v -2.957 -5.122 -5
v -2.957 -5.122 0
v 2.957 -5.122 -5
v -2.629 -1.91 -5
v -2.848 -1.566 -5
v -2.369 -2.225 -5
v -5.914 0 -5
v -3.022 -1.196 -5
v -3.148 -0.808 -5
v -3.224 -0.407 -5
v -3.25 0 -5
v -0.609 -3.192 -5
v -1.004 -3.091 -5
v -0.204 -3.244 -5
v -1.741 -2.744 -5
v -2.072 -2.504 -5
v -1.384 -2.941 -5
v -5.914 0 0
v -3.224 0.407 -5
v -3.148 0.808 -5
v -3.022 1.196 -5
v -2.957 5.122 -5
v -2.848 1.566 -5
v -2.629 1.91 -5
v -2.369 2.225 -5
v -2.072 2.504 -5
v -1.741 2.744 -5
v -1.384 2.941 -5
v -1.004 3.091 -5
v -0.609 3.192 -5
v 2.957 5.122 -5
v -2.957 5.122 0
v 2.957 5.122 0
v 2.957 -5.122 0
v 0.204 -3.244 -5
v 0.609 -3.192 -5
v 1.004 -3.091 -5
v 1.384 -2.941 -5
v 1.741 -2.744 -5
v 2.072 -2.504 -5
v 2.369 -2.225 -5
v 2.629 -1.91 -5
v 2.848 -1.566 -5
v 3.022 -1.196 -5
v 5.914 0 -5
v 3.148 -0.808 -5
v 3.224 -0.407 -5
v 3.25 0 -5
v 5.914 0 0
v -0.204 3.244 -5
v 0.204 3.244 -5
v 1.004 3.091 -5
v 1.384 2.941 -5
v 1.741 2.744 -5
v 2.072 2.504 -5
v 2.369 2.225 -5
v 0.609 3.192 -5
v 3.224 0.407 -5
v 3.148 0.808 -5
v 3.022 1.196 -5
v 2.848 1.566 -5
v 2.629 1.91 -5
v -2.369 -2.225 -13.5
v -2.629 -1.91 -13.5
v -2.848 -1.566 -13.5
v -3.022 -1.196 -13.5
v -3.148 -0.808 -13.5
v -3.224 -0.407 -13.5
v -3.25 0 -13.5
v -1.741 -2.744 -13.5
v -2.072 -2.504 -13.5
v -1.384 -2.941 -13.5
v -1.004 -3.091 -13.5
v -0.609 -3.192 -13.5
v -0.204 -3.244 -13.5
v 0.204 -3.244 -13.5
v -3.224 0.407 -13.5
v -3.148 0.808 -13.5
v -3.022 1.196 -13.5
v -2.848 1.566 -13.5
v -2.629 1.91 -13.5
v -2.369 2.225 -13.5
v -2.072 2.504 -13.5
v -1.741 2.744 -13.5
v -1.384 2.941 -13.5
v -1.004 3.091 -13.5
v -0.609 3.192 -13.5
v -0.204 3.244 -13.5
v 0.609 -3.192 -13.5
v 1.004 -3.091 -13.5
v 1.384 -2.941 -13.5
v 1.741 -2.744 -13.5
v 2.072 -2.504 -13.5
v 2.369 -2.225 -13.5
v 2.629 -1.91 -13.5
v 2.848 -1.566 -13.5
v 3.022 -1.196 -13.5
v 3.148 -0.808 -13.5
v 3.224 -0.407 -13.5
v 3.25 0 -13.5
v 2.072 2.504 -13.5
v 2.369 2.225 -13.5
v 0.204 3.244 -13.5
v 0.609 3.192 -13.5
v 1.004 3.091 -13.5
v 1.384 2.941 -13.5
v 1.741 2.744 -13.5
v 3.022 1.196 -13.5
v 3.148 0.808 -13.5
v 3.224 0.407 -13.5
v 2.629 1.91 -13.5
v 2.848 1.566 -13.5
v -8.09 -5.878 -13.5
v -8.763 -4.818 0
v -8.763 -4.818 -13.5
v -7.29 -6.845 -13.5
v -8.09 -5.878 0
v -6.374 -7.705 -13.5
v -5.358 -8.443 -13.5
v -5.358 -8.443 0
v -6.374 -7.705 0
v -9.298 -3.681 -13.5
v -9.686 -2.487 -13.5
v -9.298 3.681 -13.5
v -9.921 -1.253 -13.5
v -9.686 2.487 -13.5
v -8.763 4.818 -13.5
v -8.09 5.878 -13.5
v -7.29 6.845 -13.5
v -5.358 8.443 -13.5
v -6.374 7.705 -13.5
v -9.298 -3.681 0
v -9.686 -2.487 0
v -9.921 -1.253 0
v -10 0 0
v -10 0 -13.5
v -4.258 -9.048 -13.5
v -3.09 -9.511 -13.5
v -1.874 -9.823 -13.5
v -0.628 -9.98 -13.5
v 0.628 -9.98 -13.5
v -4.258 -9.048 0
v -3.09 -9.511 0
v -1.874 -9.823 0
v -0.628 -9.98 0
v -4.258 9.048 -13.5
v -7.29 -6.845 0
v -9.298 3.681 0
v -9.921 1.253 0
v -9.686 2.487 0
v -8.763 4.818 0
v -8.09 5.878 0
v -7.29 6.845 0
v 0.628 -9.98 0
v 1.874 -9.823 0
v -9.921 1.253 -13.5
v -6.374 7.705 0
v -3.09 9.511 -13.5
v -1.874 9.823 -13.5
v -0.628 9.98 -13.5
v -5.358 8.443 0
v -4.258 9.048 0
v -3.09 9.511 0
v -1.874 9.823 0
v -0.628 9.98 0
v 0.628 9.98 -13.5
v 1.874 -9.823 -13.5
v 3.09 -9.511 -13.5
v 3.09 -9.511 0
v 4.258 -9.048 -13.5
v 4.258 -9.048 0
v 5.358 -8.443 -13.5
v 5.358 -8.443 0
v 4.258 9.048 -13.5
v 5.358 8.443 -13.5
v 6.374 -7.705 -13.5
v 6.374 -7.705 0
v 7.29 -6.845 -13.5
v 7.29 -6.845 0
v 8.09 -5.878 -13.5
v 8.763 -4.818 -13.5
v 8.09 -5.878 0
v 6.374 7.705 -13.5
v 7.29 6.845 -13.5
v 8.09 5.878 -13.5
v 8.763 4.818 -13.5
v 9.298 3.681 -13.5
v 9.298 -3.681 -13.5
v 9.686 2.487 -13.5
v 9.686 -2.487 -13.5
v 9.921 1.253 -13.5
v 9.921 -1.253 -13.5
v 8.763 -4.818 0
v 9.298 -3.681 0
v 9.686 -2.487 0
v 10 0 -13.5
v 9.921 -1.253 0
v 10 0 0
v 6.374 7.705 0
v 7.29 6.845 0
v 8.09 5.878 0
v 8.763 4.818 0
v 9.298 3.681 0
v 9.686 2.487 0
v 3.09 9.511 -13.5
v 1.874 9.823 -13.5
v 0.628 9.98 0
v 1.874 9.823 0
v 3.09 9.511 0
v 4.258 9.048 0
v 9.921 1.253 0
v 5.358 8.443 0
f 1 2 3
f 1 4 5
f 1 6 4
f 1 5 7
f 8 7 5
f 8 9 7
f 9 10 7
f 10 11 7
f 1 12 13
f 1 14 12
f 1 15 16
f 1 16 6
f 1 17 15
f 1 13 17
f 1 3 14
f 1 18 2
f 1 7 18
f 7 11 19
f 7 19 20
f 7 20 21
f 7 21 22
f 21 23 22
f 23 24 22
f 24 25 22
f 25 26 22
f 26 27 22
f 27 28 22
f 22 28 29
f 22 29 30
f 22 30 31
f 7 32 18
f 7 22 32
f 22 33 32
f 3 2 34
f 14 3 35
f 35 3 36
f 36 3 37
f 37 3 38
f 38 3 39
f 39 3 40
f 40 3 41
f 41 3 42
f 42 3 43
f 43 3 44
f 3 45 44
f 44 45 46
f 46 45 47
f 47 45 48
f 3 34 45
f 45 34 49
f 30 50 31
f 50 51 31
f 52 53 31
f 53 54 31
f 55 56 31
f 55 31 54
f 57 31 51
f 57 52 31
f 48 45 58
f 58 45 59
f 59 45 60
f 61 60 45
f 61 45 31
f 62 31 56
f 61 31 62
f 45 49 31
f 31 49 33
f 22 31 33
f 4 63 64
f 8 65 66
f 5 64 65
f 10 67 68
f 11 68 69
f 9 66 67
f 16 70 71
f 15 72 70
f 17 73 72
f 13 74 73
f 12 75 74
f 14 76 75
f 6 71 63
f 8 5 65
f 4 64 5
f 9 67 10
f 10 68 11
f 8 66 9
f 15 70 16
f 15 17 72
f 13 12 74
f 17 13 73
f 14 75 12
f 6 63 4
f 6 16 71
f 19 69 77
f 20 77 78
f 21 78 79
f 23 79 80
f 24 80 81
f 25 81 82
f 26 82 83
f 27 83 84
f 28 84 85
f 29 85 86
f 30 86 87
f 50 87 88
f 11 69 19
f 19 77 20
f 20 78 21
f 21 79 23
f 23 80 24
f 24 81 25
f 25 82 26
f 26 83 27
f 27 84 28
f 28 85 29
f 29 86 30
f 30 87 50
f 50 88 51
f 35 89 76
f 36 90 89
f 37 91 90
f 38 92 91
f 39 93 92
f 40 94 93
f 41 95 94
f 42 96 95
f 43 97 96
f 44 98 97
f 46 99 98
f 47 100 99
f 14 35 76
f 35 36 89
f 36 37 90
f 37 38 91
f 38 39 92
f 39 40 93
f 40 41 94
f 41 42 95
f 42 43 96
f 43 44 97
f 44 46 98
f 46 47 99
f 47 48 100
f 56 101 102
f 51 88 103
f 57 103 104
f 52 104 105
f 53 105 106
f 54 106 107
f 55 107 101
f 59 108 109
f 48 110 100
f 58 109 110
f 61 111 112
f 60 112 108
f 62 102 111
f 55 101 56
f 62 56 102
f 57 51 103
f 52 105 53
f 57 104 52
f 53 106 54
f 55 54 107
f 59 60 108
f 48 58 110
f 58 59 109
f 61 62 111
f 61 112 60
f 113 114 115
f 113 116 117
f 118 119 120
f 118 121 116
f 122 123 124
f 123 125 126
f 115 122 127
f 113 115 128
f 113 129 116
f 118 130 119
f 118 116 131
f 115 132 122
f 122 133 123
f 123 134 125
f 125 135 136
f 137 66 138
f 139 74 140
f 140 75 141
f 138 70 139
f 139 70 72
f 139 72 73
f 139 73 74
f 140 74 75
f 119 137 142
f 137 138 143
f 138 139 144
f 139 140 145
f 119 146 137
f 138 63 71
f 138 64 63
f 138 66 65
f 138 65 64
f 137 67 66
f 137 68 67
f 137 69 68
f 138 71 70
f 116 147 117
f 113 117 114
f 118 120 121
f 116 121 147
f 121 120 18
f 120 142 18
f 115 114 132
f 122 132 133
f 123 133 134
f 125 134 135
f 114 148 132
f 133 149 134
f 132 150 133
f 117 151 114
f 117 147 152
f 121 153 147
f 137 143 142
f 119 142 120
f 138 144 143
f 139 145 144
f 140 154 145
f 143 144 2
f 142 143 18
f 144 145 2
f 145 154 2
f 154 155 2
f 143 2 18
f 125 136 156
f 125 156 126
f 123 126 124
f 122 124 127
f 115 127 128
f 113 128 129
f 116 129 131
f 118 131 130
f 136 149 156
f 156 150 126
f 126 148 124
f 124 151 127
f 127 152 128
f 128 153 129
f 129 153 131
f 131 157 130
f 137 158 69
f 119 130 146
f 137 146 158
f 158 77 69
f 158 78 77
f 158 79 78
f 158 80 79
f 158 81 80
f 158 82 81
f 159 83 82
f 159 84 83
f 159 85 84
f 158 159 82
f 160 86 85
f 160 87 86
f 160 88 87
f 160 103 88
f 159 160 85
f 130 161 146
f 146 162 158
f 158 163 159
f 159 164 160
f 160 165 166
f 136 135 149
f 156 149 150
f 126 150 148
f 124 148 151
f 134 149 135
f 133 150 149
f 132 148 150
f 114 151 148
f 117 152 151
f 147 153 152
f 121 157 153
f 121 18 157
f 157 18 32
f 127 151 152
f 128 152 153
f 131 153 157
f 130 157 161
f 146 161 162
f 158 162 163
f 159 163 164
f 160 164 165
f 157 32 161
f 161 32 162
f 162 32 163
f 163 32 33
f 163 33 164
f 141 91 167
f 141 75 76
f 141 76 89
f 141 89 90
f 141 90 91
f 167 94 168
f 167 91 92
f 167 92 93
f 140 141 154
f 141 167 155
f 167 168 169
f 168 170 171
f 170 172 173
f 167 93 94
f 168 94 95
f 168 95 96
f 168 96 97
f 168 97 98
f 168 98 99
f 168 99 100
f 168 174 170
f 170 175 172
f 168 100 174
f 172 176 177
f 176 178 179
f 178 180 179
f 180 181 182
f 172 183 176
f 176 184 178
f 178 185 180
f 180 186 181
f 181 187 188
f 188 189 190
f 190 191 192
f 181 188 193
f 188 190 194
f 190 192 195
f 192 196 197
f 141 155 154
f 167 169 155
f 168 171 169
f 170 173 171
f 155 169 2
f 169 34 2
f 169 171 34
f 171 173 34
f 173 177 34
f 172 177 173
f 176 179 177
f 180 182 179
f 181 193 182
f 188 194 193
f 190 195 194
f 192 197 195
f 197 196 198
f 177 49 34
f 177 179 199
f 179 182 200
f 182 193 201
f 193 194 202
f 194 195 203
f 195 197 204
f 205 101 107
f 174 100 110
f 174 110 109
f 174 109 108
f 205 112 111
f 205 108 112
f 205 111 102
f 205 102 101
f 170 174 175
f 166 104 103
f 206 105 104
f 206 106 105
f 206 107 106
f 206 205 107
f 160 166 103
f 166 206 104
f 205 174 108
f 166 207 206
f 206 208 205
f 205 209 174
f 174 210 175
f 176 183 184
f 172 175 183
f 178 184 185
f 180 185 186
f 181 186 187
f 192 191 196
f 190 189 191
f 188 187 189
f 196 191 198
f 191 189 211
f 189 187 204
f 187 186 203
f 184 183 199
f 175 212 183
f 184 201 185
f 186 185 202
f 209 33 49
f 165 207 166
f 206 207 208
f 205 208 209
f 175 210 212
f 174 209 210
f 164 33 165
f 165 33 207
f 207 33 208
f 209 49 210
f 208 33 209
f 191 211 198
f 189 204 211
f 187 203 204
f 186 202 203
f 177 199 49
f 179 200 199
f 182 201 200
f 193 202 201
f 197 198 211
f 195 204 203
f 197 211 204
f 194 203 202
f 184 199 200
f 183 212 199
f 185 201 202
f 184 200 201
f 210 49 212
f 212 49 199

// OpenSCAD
$fn = 50;

difference() {
	union() {
		translate(v = [0, 0, -13.5]) {
			cylinder(h = 13.5, r = 10.0);
		}
	}
	union() {
		translate(v = [0, 0, 0]) {
			rotate(a = [0, 0, 0]) {
				difference() {
					union() {
						translate(v = [0, 0, -5]) {
							linear_extrude(height = 5) {
								polygon(points = [[5.914249999999999, 0.0], [2.957125, 5.1218907443321156], [-2.9571249999999982, 5.1218907443321156], [-5.914249999999999, 7.242867331857232e-16], [-2.9571250000000022, -5.121890744332115], [2.9571249999999956, -5.121890744332118]]);
							}
						}
					}
					union();
				}
			}
		}
		#translate(v = [0, 0, -100.0]) {
			cylinder(h = 200, r = 3.25);
		}
	}
}
